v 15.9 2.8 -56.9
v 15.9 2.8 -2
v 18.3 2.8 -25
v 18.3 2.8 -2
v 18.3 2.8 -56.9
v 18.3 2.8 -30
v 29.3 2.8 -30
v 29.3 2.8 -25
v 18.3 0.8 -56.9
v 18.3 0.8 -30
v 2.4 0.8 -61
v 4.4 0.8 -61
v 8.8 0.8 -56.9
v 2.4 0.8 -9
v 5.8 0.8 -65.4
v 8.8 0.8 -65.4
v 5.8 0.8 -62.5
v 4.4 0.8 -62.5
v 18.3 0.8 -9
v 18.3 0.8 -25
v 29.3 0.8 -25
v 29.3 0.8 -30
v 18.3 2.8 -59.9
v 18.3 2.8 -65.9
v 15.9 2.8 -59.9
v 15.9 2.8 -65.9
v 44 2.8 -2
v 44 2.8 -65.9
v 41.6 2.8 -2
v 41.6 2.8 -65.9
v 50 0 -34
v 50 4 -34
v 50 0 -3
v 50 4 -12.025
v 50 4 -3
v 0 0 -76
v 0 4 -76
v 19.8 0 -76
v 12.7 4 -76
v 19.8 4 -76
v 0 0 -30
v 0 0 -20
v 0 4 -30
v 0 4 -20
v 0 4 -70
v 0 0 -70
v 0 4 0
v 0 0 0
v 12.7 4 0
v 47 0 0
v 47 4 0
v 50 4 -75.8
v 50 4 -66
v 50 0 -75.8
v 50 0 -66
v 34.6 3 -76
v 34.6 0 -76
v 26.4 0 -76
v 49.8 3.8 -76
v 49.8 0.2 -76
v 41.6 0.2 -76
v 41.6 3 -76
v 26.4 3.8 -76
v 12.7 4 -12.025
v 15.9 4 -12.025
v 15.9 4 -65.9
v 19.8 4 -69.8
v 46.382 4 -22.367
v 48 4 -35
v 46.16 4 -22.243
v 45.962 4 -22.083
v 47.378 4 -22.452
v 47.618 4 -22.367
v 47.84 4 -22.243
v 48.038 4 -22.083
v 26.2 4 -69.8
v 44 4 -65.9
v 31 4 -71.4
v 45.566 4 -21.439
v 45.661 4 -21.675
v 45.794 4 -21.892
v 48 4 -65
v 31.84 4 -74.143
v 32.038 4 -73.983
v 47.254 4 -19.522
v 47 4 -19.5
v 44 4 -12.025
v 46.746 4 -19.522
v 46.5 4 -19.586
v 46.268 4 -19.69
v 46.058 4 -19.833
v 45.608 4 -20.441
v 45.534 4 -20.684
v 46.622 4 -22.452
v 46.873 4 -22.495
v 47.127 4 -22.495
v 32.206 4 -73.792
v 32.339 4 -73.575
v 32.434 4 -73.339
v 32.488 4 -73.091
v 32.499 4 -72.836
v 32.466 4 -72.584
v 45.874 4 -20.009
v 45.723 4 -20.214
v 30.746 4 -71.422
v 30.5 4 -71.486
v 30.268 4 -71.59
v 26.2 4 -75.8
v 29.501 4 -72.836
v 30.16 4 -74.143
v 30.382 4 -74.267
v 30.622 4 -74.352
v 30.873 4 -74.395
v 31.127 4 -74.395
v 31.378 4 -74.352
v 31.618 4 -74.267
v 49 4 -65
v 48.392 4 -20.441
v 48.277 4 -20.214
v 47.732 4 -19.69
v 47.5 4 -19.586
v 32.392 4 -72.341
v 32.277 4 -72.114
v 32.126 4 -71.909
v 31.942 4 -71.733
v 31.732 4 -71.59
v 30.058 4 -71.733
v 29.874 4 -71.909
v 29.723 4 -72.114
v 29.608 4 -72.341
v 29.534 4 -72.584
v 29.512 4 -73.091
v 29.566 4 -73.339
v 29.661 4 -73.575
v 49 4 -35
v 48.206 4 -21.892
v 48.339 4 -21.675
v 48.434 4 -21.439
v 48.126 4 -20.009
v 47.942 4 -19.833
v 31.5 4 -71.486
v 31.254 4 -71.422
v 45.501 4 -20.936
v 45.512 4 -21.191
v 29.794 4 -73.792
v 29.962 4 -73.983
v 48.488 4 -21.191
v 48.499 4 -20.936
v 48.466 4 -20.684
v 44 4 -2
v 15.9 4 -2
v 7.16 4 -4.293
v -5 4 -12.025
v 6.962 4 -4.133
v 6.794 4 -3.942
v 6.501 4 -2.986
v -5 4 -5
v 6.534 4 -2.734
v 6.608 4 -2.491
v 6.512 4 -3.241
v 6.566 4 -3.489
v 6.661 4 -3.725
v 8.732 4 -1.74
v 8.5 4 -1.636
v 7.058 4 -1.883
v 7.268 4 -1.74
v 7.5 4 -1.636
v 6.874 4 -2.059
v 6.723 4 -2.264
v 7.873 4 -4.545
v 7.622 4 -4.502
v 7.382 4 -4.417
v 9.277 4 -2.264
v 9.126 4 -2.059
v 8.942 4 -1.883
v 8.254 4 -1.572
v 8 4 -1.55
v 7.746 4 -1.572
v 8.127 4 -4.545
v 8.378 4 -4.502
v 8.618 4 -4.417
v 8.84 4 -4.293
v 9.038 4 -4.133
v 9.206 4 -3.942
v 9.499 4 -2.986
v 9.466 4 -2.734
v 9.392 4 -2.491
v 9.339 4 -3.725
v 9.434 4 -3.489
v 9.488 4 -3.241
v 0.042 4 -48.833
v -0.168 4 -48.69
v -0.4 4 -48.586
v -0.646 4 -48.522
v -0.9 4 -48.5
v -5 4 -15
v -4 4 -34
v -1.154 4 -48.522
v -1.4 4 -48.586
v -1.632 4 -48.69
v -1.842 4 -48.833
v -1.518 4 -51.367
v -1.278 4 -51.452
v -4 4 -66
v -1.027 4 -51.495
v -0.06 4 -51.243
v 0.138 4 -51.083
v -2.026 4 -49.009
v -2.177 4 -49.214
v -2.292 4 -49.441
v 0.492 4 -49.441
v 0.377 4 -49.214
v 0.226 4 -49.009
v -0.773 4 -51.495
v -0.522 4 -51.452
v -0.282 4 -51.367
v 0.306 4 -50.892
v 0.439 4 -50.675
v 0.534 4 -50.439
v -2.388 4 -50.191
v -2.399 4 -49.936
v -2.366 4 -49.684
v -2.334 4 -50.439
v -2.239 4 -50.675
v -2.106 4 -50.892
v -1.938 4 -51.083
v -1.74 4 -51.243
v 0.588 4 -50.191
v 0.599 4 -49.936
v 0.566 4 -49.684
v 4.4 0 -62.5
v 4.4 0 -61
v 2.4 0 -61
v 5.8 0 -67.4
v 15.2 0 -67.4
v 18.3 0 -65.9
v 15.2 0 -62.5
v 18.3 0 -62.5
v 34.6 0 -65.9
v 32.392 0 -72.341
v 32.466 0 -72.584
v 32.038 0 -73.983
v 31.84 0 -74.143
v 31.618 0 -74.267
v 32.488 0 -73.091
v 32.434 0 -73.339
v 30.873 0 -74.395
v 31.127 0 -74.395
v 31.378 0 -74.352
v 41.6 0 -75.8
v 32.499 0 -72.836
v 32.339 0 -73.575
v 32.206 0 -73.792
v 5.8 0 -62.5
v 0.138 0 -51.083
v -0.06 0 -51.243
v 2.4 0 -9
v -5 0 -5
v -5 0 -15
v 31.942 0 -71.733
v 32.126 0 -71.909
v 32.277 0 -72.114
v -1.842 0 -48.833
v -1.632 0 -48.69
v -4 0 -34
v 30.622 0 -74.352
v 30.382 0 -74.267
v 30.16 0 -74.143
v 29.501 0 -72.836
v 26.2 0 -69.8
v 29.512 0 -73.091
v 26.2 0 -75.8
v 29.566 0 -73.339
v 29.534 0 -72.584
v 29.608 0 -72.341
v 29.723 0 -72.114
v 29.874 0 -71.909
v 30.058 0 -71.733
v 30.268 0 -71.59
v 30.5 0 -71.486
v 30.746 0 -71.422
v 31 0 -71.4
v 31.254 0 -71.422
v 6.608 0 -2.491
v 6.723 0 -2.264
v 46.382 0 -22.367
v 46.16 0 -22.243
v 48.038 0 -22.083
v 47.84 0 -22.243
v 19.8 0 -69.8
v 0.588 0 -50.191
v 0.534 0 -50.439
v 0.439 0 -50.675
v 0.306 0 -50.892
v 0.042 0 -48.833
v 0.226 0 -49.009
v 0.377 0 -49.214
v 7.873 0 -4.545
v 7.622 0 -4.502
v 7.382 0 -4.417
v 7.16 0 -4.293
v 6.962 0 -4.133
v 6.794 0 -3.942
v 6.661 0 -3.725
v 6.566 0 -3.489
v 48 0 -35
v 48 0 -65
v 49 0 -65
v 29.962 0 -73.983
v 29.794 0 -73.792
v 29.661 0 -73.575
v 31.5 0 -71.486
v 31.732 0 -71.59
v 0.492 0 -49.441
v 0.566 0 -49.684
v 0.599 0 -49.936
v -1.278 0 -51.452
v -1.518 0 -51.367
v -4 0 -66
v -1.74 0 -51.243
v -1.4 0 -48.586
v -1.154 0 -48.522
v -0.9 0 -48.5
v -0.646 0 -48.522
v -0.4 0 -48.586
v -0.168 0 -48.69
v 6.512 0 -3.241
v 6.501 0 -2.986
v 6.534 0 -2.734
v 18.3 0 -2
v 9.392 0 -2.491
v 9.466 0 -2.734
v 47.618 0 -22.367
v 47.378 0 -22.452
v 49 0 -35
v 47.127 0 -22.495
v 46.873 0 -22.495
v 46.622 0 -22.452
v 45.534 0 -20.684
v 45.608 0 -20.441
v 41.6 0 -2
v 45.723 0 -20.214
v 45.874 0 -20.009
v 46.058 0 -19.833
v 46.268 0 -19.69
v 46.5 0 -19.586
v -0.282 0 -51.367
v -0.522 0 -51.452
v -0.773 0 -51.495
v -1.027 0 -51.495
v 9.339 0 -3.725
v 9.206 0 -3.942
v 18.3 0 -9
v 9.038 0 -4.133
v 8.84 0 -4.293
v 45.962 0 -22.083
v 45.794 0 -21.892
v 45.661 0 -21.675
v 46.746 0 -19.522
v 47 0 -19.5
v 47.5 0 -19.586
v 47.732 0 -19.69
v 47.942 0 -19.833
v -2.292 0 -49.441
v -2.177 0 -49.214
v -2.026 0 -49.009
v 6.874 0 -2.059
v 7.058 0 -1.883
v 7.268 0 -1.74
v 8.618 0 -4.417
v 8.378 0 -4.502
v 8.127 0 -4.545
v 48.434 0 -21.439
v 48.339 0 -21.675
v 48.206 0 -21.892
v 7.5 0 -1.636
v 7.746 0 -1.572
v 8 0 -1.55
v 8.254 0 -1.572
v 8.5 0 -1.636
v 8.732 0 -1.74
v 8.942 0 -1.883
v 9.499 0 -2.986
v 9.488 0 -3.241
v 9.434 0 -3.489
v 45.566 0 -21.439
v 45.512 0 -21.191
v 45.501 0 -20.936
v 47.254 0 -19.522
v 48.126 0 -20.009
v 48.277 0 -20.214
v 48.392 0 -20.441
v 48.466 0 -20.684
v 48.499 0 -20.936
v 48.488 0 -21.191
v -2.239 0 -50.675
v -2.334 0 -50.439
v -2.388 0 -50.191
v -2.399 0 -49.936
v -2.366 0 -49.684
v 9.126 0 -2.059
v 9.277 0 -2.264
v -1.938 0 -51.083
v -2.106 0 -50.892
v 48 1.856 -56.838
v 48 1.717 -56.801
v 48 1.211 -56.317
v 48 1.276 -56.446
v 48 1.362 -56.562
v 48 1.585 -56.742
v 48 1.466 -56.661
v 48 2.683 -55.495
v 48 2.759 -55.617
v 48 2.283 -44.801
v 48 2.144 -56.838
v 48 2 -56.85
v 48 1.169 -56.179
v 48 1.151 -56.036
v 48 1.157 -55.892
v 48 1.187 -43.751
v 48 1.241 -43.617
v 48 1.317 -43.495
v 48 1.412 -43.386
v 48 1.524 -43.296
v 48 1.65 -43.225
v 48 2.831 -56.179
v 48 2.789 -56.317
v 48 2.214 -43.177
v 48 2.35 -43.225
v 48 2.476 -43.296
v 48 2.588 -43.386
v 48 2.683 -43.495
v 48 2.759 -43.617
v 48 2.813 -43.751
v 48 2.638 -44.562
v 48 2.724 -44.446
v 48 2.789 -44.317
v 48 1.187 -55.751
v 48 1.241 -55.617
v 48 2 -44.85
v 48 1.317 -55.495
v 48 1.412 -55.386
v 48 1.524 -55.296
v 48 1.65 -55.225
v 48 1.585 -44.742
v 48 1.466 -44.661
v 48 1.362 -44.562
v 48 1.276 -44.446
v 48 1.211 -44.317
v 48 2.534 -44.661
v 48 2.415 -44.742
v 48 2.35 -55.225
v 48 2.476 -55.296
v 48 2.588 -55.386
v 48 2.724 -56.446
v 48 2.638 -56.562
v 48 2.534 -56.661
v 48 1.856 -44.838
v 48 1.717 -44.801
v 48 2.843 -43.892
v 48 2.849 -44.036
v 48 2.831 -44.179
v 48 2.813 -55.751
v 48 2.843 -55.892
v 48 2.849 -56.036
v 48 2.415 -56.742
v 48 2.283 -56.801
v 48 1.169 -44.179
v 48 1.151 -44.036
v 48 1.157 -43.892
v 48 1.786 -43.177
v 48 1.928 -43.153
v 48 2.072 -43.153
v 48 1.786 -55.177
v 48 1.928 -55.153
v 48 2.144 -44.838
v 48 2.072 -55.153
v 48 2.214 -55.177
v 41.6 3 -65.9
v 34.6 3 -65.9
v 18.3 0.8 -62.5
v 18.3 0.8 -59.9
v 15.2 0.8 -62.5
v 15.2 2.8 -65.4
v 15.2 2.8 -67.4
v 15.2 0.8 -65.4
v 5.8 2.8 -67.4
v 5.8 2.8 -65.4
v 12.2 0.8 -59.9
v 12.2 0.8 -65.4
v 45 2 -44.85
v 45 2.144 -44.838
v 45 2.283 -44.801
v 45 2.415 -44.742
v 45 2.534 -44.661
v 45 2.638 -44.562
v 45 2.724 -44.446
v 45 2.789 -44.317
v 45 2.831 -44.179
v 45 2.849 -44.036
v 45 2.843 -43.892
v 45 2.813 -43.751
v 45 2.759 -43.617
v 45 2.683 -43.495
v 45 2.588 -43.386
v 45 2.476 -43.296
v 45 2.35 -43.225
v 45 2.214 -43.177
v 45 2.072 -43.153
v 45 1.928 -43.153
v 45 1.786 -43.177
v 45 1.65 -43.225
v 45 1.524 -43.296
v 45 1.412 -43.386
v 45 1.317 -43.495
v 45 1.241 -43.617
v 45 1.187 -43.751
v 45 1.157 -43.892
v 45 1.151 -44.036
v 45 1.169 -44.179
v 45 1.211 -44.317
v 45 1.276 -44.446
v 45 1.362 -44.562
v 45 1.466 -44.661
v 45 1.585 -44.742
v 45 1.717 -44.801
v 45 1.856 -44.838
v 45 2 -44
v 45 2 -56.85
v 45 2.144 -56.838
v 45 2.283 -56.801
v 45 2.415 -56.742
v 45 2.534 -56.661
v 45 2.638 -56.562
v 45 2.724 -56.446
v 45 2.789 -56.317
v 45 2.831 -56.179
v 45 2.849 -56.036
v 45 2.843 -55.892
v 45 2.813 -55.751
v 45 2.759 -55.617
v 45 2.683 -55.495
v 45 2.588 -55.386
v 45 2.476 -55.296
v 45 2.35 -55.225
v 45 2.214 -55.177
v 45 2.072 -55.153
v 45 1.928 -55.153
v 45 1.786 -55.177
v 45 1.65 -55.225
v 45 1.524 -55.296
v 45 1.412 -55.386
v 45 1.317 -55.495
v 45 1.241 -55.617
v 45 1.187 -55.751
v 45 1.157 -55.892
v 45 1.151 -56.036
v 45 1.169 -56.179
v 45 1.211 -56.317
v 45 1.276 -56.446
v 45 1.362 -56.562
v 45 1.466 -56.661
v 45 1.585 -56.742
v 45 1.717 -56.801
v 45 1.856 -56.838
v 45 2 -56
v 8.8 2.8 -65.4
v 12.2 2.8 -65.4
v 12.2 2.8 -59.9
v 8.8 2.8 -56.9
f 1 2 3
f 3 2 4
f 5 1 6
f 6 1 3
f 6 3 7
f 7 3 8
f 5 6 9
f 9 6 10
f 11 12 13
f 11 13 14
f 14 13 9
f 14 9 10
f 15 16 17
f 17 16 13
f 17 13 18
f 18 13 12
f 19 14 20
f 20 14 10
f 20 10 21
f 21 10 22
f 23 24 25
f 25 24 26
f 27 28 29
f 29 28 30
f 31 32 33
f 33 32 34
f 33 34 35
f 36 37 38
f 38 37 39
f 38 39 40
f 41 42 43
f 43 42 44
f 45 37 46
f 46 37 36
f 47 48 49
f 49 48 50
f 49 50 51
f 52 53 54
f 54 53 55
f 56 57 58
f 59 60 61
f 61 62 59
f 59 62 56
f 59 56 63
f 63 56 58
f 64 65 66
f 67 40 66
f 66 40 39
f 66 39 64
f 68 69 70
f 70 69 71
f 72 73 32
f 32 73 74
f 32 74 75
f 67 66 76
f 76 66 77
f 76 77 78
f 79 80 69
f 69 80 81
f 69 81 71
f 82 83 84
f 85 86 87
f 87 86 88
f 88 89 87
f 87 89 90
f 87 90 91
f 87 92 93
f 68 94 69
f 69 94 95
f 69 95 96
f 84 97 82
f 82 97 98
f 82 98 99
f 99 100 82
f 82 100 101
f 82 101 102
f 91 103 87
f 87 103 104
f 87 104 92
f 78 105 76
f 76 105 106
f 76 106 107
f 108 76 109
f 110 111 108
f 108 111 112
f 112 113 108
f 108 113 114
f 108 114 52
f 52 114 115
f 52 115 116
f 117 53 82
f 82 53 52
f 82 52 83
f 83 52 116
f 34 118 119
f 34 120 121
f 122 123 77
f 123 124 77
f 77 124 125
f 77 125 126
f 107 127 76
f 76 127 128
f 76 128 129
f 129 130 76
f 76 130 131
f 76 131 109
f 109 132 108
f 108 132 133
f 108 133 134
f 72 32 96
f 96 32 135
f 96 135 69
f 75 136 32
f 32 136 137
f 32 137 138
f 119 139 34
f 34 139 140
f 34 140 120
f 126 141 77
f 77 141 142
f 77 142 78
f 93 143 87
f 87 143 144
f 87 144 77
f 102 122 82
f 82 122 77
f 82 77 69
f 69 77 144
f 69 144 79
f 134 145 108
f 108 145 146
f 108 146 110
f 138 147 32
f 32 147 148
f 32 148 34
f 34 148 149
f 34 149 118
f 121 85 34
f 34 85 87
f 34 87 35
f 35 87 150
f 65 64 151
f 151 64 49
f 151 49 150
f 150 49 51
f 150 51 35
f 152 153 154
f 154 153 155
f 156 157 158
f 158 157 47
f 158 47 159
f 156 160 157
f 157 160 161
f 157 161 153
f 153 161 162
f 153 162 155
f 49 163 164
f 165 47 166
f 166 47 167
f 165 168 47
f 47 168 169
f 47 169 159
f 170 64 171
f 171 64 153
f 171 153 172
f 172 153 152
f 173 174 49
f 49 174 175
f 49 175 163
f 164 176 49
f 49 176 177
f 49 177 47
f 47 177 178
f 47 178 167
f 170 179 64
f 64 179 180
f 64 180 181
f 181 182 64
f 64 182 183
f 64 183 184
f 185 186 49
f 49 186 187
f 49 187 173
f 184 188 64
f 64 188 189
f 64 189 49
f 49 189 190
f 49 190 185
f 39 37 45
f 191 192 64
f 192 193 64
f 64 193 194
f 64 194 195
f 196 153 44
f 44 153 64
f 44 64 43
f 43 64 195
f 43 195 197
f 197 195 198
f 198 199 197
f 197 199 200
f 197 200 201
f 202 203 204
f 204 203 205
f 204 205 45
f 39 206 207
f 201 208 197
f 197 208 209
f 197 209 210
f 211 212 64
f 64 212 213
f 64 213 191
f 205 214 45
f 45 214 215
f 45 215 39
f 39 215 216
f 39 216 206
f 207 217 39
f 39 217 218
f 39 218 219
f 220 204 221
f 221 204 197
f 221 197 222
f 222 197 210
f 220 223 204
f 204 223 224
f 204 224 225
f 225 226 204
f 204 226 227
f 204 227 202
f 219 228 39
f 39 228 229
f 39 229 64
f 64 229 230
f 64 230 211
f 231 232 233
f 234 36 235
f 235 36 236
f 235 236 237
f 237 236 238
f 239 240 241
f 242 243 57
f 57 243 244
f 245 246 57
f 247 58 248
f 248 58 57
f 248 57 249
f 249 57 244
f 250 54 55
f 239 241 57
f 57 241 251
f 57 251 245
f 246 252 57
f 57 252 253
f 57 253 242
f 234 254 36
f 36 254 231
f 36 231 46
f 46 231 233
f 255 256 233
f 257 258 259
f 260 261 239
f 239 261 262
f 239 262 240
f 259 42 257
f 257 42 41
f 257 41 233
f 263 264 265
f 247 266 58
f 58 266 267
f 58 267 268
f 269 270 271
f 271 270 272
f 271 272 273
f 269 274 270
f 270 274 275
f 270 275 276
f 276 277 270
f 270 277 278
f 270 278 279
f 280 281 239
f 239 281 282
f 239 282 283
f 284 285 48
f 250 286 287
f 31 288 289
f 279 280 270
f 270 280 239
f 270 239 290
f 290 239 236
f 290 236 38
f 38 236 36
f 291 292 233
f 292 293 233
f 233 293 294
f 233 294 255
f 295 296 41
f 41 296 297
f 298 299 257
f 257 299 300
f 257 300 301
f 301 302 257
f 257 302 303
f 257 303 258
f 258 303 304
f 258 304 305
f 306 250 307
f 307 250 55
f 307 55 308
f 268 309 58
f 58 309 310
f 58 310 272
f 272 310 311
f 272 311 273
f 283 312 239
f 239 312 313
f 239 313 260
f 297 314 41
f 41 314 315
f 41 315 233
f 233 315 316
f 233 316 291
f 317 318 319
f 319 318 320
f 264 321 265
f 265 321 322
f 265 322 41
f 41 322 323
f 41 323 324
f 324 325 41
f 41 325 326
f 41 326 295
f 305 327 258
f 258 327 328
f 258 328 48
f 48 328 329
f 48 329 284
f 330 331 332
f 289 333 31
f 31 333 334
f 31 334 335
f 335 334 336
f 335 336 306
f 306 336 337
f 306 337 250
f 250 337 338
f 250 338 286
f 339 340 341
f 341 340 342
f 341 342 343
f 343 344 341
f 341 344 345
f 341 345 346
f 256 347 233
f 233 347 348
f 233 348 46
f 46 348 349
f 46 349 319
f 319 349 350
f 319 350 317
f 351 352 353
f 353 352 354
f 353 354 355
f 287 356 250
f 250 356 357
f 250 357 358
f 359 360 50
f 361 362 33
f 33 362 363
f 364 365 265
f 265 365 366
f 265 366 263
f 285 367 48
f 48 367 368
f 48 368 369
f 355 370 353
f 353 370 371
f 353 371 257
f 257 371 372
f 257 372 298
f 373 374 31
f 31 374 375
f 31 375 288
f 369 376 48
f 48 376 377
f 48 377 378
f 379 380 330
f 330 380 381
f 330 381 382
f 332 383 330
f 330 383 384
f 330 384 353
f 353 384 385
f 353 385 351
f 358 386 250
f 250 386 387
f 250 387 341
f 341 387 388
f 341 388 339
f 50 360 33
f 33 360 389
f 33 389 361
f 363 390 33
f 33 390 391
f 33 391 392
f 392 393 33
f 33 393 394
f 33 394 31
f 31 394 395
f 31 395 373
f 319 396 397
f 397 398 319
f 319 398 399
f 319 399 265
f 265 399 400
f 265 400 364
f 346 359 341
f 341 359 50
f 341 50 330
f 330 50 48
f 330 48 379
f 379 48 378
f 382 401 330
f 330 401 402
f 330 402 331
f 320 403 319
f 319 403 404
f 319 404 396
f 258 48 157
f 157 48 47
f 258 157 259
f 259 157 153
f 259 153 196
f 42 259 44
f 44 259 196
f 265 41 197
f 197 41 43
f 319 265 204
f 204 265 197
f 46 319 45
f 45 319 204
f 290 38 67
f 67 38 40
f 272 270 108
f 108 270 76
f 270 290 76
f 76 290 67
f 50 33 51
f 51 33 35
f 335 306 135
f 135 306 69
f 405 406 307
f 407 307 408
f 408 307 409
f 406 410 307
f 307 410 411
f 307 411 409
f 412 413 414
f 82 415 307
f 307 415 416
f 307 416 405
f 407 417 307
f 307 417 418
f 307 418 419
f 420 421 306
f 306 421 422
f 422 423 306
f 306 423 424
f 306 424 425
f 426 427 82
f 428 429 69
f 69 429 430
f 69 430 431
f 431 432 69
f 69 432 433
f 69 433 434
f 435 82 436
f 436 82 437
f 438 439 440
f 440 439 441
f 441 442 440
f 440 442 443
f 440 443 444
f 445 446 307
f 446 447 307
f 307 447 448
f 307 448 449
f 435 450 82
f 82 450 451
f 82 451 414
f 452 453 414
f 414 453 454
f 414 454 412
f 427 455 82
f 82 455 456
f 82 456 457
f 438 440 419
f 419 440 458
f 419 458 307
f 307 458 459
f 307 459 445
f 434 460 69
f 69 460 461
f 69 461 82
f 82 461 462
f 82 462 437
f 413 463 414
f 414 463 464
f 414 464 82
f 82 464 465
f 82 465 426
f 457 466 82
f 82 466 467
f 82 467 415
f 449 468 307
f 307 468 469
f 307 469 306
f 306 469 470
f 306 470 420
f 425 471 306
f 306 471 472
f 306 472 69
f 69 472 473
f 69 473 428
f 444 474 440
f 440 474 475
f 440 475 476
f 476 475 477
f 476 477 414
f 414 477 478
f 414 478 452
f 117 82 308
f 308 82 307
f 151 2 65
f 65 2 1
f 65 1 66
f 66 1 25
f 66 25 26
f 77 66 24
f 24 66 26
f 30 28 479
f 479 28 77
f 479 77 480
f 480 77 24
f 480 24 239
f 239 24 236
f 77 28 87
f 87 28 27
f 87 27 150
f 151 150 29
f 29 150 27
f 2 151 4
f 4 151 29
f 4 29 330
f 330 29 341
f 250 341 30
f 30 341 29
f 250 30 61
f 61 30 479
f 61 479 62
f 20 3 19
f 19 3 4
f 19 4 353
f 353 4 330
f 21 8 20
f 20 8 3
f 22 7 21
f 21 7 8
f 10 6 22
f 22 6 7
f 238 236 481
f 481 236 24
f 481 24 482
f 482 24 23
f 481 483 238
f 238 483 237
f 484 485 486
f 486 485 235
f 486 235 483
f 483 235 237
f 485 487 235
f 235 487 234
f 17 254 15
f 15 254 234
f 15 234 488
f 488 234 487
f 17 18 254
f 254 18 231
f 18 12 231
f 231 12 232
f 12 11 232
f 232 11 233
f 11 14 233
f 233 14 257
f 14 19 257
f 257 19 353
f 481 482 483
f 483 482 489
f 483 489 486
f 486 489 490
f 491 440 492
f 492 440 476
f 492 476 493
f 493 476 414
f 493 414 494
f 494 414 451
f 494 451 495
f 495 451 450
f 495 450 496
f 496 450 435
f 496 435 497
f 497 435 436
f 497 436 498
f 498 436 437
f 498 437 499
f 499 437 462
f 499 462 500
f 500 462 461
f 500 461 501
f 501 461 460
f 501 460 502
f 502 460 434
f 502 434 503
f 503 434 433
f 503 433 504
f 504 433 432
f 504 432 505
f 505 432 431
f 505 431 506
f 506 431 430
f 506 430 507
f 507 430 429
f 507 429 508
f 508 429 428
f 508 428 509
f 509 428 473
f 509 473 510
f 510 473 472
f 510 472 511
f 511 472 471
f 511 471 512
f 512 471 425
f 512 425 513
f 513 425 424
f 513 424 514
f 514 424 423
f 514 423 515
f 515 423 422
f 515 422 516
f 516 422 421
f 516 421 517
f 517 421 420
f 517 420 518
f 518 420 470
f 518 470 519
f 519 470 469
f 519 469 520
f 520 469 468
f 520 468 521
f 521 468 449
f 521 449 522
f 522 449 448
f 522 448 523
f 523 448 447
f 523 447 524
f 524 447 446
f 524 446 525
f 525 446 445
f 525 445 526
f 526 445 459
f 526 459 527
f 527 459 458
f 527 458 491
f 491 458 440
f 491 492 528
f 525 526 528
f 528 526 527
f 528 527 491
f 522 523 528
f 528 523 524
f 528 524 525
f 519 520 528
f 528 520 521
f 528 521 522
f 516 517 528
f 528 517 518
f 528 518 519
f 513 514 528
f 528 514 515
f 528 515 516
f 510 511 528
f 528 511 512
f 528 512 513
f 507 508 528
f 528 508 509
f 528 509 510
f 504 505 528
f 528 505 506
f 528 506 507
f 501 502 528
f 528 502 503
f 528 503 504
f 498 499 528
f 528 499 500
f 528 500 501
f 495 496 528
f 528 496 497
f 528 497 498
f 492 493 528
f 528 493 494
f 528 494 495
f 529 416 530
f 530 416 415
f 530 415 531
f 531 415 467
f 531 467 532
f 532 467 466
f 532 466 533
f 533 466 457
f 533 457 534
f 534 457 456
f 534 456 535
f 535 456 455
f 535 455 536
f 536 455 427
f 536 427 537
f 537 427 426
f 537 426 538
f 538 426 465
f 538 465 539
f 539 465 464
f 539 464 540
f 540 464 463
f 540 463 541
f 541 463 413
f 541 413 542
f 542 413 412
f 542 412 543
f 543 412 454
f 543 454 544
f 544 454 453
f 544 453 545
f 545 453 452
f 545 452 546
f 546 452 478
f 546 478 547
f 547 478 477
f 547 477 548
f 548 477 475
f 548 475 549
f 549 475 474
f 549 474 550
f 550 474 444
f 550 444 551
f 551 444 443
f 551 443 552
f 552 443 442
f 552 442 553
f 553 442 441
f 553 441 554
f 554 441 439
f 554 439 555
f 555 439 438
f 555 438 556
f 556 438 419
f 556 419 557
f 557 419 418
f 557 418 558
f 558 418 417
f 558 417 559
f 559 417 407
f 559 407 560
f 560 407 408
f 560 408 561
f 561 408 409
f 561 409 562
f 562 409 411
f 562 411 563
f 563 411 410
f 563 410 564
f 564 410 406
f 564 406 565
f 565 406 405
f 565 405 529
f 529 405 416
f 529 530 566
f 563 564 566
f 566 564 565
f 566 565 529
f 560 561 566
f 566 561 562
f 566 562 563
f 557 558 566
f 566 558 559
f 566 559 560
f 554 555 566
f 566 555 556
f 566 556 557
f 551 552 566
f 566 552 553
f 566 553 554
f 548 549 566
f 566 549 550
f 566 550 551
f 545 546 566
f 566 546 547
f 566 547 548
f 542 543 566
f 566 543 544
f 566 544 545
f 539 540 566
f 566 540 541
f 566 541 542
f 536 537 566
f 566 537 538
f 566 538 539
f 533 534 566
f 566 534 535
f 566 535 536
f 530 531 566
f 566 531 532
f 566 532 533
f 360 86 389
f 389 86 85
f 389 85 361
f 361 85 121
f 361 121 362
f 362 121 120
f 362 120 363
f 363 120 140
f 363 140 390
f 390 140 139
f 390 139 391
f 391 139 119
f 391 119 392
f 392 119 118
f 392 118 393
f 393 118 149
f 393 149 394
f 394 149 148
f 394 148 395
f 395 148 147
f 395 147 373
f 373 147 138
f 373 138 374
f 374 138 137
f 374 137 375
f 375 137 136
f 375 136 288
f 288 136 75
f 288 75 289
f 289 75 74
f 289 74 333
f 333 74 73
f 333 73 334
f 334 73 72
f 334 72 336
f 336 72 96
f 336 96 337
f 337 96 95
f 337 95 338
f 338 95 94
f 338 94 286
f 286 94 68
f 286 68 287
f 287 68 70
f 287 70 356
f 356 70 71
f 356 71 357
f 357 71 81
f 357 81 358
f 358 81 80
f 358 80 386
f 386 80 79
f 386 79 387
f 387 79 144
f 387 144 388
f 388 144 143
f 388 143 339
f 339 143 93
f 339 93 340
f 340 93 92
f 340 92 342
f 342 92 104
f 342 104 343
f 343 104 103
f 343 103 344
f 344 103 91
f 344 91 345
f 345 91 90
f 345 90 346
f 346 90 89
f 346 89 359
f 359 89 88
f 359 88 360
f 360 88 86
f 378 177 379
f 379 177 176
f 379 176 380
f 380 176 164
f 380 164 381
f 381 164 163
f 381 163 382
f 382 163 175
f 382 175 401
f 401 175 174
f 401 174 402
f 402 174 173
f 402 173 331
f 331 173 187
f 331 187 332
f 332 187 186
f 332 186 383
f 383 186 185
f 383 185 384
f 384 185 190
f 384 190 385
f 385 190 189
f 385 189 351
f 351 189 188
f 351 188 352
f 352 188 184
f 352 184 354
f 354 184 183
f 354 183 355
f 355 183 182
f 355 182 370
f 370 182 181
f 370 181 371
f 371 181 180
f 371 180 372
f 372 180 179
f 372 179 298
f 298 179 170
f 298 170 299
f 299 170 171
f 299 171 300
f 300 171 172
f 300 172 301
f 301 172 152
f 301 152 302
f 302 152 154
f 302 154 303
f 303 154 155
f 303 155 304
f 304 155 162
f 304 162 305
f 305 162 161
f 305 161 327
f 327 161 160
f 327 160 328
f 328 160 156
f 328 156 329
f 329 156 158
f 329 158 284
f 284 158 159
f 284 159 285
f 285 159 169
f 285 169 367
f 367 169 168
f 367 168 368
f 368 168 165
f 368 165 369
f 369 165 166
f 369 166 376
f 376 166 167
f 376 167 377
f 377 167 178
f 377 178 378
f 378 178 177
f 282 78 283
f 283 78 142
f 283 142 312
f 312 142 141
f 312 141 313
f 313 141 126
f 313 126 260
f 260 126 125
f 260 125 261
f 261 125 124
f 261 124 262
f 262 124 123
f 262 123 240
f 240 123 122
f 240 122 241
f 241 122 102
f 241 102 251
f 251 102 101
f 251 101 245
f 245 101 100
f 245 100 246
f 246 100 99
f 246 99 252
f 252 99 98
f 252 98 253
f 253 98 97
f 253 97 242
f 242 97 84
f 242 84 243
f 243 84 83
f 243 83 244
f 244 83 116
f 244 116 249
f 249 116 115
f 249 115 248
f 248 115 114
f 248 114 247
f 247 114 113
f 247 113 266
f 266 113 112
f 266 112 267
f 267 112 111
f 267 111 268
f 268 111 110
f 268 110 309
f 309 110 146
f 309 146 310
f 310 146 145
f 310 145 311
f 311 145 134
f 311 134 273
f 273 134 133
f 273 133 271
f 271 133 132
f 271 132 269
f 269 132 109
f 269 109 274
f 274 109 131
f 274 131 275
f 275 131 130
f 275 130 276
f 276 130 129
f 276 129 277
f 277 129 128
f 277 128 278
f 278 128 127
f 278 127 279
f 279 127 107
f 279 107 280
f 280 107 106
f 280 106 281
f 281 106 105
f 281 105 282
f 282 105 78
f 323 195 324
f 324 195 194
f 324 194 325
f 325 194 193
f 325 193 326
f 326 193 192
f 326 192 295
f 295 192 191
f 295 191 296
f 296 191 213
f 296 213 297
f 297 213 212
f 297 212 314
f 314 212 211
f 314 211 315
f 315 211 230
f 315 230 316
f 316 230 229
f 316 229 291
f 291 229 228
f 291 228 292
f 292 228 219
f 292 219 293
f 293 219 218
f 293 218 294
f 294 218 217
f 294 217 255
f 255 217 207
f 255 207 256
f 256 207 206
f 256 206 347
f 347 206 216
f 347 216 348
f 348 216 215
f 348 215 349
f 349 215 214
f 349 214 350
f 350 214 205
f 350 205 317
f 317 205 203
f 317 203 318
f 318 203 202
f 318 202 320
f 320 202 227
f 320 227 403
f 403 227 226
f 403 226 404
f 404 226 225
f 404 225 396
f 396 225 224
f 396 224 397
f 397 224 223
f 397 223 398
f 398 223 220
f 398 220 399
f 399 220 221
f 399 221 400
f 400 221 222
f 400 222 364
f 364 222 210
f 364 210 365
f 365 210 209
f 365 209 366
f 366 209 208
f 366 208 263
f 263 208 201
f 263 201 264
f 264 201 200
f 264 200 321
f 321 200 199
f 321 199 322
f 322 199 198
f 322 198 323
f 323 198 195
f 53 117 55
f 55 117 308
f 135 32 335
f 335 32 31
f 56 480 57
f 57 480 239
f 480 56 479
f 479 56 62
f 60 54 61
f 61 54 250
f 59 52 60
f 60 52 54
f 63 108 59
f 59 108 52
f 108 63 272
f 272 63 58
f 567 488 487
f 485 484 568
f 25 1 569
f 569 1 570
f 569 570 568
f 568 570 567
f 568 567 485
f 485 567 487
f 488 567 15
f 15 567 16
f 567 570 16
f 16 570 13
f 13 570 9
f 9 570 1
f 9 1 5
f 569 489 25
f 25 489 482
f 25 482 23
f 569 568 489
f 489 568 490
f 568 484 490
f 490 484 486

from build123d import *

# Parameters (mm, degrees)
SKETCH_1_W           = 50
SKETCH_1_H           = 76
EXTRUDE_1_DEPTH      = 4
EXTRUDE_2_DEPTH      = 4
SKETCH_4_W           = 6.4
SKETCH_4_H           = 6.2
CUT_EXTRUDE_1_DEPTH  = 4
CHAMFER_1_SIZE       = 3
SKETCH_6_W           = 2
SKETCH_6_H           = 30
CUT_EXTRUDE_3_DEPTH  = 5
SKETCH_7_W           = 28.1
SKETCH_7_H           = 63.9
CUT_EXTRUDE_4_DEPTH  = 1.2
CUT_EXTRUDE_5_DEPTH  = 3.8
CUT_EXTRUDE_6_DEPTH  = 0.8
SKETCH_10_R          = 0.85
CUT_EXTRUDE_7_DEPTH  = 3
SKETCH_11_R          = 1.5
CUT_EXTRUDE_8_DEPTH  = 5
CHAMFER_2_SIZE       = 1
SKETCH_12_W          = 7
SKETCH_12_H          = 10.1
CUT_EXTRUDE_9_DEPTH  = 3
CHAMFER_3_SIZE       = 0.2
CUT_EXTRUDE_10_DEPTH = 2


with BuildPart() as part:
    # 草图1 → 凸台-拉伸1 (new body)
    with BuildSketch(Plane(origin=(0, 0, 0), x_dir=(1, 0, 0), z_dir=(0, 1, 0))):
        with Locations((25, 38)):
            Rectangle(SKETCH_1_W, SKETCH_1_H)
    extrude(amount=EXTRUDE_1_DEPTH)

    # 草图3 → 凸台-拉伸2 (add)
    with BuildSketch(Plane(origin=(0, 4, 0), x_dir=(1, 0, 0), z_dir=(0, 1, 0))):
        Polygon((0, 0), (-5, 5), (-5, 15), (0, 20), align=None)
        Polygon((0, 30), (-4, 34), (-4, 66), (0, 70), align=None)
    extrude(amount=-EXTRUDE_2_DEPTH)

    # 草图4 → 切除-拉伸1 (cut)
    with BuildSketch(Plane(origin=(0, 4, 0), x_dir=(1, 0, 0), z_dir=(0, 1, 0))):
        with Locations((23, 72.9)):
            Rectangle(SKETCH_4_W, SKETCH_4_H)
    extrude(amount=-CUT_EXTRUDE_1_DEPTH, mode=Mode.SUBTRACT)

    # 倒角1
    chamfer_1_edges = [part.edges().sort_by_distance(p)[0] for p in [
        (50, 2, 0),
    ]]
    chamfer(chamfer_1_edges, length=CHAMFER_1_SIZE)

    # 草图6 → 切除-拉伸3 (cut, through all)
    with BuildSketch(Plane(origin=(0, 4, 0), x_dir=(1, 0, 0), z_dir=(0, 1, 0))):
        with Locations((49, 50)):
            Rectangle(SKETCH_6_W, SKETCH_6_H)
    extrude(amount=-CUT_EXTRUDE_3_DEPTH, mode=Mode.SUBTRACT)

    # 草图7 → 切除-拉伸4 (cut)
    with BuildSketch(Plane(origin=(0, 4, 0), x_dir=(1, 0, 0), z_dir=(0, 1, 0))):
        with Locations((29.95, 33.95)):
            Rectangle(SKETCH_7_W, SKETCH_7_H)
    extrude(amount=-CUT_EXTRUDE_4_DEPTH, mode=Mode.SUBTRACT)

    # 草图8 → 切除-拉伸5 (cut, through all)
    with BuildSketch(Plane(origin=(0, 2.8, 0), x_dir=(1, 0, 0), z_dir=(0, 1, 0))):
        Polygon((41.6, 65.9), (41.6, 2), (18.3, 2), (18.3, 25), (29.3, 25), (29.3, 30), (18.3, 30), (18.3, 65.9), align=None)
    extrude(amount=-CUT_EXTRUDE_5_DEPTH, mode=Mode.SUBTRACT)

    # 草图9 → 切除-拉伸6 (cut)
    with BuildSketch(Plane.XZ):
        Polygon((18.3, -25), (18.3, -9), (2.4, -9), (2.4, -61), (4.4, -61), (4.4, -62.5), (5.8, -62.5), (5.8, -67.4), (15.2, -67.4), (15.2, -62.5), (18.3, -62.5), (18.3, -30), (29.3, -30), (29.3, -25), align=None)
    extrude(amount=-CUT_EXTRUDE_6_DEPTH, mode=Mode.SUBTRACT)

    # 草图10 → 切除-拉伸7 (cut)
    with BuildSketch(Plane(origin=(48, 0, 0), x_dir=(0, 0, -1), z_dir=(1, 0, 0))):
        with Locations((44, 2)):
            Circle(SKETCH_10_R)
        with Locations((56, 2)):
            Circle(SKETCH_10_R)
    extrude(amount=-CUT_EXTRUDE_7_DEPTH, mode=Mode.SUBTRACT)

    # 草图11 → 切除-拉伸8 (cut, through all)
    with BuildSketch(Plane(origin=(0, 4, 0), x_dir=(1, 0, 0), z_dir=(0, 1, 0))):
        with Locations((-0.9, 50)):
            Circle(SKETCH_11_R)
        with Locations((31, 72.9)):
            Circle(SKETCH_11_R)
        with Locations((8, 3.05)):
            Circle(SKETCH_11_R)
        with Locations((47, 21)):
            Circle(SKETCH_11_R)
    extrude(amount=-CUT_EXTRUDE_8_DEPTH, mode=Mode.SUBTRACT)

    # 倒角2
    chamfer_2_edges = [part.edges().sort_by_distance(p)[0] for p in [
        (50, 2, -65),
        (50, 2, -35),
    ]]
    chamfer(chamfer_2_edges, length=CHAMFER_2_SIZE)

    # 草图12 → 切除-拉伸9 (cut)
    with BuildSketch(Plane.XZ):
        with Locations((38.1, -70.95)):
            Rectangle(SKETCH_12_W, SKETCH_12_H)
    extrude(amount=-CUT_EXTRUDE_9_DEPTH, mode=Mode.SUBTRACT)

    # 倒角3
    chamfer_3_edges = [part.edges().sort_by_distance(p)[0] for p in [
        (26.2, 2, -76),
        (45.8, 0, -76),
        (50, 2, -76),
        (38.1, 4, -76),
    ]]
    chamfer(chamfer_3_edges, length=CHAMFER_3_SIZE)

    # 草图13 → 切除-拉伸10 (cut)
    with BuildSketch(Plane.XZ.offset(-0.8)):
        Polygon((5.8, -67.4), (15.2, -67.4), (15.2, -65.4), (12.2, -65.4), (12.2, -59.9), (18.3, -59.9), (18.3, -56.9), (8.8, -56.9), (8.8, -59.955757414), (8.8, -65.4), (5.8, -65.4), align=None)
    extrude(amount=-CUT_EXTRUDE_10_DEPTH, mode=Mode.SUBTRACT)


solid = part.part
